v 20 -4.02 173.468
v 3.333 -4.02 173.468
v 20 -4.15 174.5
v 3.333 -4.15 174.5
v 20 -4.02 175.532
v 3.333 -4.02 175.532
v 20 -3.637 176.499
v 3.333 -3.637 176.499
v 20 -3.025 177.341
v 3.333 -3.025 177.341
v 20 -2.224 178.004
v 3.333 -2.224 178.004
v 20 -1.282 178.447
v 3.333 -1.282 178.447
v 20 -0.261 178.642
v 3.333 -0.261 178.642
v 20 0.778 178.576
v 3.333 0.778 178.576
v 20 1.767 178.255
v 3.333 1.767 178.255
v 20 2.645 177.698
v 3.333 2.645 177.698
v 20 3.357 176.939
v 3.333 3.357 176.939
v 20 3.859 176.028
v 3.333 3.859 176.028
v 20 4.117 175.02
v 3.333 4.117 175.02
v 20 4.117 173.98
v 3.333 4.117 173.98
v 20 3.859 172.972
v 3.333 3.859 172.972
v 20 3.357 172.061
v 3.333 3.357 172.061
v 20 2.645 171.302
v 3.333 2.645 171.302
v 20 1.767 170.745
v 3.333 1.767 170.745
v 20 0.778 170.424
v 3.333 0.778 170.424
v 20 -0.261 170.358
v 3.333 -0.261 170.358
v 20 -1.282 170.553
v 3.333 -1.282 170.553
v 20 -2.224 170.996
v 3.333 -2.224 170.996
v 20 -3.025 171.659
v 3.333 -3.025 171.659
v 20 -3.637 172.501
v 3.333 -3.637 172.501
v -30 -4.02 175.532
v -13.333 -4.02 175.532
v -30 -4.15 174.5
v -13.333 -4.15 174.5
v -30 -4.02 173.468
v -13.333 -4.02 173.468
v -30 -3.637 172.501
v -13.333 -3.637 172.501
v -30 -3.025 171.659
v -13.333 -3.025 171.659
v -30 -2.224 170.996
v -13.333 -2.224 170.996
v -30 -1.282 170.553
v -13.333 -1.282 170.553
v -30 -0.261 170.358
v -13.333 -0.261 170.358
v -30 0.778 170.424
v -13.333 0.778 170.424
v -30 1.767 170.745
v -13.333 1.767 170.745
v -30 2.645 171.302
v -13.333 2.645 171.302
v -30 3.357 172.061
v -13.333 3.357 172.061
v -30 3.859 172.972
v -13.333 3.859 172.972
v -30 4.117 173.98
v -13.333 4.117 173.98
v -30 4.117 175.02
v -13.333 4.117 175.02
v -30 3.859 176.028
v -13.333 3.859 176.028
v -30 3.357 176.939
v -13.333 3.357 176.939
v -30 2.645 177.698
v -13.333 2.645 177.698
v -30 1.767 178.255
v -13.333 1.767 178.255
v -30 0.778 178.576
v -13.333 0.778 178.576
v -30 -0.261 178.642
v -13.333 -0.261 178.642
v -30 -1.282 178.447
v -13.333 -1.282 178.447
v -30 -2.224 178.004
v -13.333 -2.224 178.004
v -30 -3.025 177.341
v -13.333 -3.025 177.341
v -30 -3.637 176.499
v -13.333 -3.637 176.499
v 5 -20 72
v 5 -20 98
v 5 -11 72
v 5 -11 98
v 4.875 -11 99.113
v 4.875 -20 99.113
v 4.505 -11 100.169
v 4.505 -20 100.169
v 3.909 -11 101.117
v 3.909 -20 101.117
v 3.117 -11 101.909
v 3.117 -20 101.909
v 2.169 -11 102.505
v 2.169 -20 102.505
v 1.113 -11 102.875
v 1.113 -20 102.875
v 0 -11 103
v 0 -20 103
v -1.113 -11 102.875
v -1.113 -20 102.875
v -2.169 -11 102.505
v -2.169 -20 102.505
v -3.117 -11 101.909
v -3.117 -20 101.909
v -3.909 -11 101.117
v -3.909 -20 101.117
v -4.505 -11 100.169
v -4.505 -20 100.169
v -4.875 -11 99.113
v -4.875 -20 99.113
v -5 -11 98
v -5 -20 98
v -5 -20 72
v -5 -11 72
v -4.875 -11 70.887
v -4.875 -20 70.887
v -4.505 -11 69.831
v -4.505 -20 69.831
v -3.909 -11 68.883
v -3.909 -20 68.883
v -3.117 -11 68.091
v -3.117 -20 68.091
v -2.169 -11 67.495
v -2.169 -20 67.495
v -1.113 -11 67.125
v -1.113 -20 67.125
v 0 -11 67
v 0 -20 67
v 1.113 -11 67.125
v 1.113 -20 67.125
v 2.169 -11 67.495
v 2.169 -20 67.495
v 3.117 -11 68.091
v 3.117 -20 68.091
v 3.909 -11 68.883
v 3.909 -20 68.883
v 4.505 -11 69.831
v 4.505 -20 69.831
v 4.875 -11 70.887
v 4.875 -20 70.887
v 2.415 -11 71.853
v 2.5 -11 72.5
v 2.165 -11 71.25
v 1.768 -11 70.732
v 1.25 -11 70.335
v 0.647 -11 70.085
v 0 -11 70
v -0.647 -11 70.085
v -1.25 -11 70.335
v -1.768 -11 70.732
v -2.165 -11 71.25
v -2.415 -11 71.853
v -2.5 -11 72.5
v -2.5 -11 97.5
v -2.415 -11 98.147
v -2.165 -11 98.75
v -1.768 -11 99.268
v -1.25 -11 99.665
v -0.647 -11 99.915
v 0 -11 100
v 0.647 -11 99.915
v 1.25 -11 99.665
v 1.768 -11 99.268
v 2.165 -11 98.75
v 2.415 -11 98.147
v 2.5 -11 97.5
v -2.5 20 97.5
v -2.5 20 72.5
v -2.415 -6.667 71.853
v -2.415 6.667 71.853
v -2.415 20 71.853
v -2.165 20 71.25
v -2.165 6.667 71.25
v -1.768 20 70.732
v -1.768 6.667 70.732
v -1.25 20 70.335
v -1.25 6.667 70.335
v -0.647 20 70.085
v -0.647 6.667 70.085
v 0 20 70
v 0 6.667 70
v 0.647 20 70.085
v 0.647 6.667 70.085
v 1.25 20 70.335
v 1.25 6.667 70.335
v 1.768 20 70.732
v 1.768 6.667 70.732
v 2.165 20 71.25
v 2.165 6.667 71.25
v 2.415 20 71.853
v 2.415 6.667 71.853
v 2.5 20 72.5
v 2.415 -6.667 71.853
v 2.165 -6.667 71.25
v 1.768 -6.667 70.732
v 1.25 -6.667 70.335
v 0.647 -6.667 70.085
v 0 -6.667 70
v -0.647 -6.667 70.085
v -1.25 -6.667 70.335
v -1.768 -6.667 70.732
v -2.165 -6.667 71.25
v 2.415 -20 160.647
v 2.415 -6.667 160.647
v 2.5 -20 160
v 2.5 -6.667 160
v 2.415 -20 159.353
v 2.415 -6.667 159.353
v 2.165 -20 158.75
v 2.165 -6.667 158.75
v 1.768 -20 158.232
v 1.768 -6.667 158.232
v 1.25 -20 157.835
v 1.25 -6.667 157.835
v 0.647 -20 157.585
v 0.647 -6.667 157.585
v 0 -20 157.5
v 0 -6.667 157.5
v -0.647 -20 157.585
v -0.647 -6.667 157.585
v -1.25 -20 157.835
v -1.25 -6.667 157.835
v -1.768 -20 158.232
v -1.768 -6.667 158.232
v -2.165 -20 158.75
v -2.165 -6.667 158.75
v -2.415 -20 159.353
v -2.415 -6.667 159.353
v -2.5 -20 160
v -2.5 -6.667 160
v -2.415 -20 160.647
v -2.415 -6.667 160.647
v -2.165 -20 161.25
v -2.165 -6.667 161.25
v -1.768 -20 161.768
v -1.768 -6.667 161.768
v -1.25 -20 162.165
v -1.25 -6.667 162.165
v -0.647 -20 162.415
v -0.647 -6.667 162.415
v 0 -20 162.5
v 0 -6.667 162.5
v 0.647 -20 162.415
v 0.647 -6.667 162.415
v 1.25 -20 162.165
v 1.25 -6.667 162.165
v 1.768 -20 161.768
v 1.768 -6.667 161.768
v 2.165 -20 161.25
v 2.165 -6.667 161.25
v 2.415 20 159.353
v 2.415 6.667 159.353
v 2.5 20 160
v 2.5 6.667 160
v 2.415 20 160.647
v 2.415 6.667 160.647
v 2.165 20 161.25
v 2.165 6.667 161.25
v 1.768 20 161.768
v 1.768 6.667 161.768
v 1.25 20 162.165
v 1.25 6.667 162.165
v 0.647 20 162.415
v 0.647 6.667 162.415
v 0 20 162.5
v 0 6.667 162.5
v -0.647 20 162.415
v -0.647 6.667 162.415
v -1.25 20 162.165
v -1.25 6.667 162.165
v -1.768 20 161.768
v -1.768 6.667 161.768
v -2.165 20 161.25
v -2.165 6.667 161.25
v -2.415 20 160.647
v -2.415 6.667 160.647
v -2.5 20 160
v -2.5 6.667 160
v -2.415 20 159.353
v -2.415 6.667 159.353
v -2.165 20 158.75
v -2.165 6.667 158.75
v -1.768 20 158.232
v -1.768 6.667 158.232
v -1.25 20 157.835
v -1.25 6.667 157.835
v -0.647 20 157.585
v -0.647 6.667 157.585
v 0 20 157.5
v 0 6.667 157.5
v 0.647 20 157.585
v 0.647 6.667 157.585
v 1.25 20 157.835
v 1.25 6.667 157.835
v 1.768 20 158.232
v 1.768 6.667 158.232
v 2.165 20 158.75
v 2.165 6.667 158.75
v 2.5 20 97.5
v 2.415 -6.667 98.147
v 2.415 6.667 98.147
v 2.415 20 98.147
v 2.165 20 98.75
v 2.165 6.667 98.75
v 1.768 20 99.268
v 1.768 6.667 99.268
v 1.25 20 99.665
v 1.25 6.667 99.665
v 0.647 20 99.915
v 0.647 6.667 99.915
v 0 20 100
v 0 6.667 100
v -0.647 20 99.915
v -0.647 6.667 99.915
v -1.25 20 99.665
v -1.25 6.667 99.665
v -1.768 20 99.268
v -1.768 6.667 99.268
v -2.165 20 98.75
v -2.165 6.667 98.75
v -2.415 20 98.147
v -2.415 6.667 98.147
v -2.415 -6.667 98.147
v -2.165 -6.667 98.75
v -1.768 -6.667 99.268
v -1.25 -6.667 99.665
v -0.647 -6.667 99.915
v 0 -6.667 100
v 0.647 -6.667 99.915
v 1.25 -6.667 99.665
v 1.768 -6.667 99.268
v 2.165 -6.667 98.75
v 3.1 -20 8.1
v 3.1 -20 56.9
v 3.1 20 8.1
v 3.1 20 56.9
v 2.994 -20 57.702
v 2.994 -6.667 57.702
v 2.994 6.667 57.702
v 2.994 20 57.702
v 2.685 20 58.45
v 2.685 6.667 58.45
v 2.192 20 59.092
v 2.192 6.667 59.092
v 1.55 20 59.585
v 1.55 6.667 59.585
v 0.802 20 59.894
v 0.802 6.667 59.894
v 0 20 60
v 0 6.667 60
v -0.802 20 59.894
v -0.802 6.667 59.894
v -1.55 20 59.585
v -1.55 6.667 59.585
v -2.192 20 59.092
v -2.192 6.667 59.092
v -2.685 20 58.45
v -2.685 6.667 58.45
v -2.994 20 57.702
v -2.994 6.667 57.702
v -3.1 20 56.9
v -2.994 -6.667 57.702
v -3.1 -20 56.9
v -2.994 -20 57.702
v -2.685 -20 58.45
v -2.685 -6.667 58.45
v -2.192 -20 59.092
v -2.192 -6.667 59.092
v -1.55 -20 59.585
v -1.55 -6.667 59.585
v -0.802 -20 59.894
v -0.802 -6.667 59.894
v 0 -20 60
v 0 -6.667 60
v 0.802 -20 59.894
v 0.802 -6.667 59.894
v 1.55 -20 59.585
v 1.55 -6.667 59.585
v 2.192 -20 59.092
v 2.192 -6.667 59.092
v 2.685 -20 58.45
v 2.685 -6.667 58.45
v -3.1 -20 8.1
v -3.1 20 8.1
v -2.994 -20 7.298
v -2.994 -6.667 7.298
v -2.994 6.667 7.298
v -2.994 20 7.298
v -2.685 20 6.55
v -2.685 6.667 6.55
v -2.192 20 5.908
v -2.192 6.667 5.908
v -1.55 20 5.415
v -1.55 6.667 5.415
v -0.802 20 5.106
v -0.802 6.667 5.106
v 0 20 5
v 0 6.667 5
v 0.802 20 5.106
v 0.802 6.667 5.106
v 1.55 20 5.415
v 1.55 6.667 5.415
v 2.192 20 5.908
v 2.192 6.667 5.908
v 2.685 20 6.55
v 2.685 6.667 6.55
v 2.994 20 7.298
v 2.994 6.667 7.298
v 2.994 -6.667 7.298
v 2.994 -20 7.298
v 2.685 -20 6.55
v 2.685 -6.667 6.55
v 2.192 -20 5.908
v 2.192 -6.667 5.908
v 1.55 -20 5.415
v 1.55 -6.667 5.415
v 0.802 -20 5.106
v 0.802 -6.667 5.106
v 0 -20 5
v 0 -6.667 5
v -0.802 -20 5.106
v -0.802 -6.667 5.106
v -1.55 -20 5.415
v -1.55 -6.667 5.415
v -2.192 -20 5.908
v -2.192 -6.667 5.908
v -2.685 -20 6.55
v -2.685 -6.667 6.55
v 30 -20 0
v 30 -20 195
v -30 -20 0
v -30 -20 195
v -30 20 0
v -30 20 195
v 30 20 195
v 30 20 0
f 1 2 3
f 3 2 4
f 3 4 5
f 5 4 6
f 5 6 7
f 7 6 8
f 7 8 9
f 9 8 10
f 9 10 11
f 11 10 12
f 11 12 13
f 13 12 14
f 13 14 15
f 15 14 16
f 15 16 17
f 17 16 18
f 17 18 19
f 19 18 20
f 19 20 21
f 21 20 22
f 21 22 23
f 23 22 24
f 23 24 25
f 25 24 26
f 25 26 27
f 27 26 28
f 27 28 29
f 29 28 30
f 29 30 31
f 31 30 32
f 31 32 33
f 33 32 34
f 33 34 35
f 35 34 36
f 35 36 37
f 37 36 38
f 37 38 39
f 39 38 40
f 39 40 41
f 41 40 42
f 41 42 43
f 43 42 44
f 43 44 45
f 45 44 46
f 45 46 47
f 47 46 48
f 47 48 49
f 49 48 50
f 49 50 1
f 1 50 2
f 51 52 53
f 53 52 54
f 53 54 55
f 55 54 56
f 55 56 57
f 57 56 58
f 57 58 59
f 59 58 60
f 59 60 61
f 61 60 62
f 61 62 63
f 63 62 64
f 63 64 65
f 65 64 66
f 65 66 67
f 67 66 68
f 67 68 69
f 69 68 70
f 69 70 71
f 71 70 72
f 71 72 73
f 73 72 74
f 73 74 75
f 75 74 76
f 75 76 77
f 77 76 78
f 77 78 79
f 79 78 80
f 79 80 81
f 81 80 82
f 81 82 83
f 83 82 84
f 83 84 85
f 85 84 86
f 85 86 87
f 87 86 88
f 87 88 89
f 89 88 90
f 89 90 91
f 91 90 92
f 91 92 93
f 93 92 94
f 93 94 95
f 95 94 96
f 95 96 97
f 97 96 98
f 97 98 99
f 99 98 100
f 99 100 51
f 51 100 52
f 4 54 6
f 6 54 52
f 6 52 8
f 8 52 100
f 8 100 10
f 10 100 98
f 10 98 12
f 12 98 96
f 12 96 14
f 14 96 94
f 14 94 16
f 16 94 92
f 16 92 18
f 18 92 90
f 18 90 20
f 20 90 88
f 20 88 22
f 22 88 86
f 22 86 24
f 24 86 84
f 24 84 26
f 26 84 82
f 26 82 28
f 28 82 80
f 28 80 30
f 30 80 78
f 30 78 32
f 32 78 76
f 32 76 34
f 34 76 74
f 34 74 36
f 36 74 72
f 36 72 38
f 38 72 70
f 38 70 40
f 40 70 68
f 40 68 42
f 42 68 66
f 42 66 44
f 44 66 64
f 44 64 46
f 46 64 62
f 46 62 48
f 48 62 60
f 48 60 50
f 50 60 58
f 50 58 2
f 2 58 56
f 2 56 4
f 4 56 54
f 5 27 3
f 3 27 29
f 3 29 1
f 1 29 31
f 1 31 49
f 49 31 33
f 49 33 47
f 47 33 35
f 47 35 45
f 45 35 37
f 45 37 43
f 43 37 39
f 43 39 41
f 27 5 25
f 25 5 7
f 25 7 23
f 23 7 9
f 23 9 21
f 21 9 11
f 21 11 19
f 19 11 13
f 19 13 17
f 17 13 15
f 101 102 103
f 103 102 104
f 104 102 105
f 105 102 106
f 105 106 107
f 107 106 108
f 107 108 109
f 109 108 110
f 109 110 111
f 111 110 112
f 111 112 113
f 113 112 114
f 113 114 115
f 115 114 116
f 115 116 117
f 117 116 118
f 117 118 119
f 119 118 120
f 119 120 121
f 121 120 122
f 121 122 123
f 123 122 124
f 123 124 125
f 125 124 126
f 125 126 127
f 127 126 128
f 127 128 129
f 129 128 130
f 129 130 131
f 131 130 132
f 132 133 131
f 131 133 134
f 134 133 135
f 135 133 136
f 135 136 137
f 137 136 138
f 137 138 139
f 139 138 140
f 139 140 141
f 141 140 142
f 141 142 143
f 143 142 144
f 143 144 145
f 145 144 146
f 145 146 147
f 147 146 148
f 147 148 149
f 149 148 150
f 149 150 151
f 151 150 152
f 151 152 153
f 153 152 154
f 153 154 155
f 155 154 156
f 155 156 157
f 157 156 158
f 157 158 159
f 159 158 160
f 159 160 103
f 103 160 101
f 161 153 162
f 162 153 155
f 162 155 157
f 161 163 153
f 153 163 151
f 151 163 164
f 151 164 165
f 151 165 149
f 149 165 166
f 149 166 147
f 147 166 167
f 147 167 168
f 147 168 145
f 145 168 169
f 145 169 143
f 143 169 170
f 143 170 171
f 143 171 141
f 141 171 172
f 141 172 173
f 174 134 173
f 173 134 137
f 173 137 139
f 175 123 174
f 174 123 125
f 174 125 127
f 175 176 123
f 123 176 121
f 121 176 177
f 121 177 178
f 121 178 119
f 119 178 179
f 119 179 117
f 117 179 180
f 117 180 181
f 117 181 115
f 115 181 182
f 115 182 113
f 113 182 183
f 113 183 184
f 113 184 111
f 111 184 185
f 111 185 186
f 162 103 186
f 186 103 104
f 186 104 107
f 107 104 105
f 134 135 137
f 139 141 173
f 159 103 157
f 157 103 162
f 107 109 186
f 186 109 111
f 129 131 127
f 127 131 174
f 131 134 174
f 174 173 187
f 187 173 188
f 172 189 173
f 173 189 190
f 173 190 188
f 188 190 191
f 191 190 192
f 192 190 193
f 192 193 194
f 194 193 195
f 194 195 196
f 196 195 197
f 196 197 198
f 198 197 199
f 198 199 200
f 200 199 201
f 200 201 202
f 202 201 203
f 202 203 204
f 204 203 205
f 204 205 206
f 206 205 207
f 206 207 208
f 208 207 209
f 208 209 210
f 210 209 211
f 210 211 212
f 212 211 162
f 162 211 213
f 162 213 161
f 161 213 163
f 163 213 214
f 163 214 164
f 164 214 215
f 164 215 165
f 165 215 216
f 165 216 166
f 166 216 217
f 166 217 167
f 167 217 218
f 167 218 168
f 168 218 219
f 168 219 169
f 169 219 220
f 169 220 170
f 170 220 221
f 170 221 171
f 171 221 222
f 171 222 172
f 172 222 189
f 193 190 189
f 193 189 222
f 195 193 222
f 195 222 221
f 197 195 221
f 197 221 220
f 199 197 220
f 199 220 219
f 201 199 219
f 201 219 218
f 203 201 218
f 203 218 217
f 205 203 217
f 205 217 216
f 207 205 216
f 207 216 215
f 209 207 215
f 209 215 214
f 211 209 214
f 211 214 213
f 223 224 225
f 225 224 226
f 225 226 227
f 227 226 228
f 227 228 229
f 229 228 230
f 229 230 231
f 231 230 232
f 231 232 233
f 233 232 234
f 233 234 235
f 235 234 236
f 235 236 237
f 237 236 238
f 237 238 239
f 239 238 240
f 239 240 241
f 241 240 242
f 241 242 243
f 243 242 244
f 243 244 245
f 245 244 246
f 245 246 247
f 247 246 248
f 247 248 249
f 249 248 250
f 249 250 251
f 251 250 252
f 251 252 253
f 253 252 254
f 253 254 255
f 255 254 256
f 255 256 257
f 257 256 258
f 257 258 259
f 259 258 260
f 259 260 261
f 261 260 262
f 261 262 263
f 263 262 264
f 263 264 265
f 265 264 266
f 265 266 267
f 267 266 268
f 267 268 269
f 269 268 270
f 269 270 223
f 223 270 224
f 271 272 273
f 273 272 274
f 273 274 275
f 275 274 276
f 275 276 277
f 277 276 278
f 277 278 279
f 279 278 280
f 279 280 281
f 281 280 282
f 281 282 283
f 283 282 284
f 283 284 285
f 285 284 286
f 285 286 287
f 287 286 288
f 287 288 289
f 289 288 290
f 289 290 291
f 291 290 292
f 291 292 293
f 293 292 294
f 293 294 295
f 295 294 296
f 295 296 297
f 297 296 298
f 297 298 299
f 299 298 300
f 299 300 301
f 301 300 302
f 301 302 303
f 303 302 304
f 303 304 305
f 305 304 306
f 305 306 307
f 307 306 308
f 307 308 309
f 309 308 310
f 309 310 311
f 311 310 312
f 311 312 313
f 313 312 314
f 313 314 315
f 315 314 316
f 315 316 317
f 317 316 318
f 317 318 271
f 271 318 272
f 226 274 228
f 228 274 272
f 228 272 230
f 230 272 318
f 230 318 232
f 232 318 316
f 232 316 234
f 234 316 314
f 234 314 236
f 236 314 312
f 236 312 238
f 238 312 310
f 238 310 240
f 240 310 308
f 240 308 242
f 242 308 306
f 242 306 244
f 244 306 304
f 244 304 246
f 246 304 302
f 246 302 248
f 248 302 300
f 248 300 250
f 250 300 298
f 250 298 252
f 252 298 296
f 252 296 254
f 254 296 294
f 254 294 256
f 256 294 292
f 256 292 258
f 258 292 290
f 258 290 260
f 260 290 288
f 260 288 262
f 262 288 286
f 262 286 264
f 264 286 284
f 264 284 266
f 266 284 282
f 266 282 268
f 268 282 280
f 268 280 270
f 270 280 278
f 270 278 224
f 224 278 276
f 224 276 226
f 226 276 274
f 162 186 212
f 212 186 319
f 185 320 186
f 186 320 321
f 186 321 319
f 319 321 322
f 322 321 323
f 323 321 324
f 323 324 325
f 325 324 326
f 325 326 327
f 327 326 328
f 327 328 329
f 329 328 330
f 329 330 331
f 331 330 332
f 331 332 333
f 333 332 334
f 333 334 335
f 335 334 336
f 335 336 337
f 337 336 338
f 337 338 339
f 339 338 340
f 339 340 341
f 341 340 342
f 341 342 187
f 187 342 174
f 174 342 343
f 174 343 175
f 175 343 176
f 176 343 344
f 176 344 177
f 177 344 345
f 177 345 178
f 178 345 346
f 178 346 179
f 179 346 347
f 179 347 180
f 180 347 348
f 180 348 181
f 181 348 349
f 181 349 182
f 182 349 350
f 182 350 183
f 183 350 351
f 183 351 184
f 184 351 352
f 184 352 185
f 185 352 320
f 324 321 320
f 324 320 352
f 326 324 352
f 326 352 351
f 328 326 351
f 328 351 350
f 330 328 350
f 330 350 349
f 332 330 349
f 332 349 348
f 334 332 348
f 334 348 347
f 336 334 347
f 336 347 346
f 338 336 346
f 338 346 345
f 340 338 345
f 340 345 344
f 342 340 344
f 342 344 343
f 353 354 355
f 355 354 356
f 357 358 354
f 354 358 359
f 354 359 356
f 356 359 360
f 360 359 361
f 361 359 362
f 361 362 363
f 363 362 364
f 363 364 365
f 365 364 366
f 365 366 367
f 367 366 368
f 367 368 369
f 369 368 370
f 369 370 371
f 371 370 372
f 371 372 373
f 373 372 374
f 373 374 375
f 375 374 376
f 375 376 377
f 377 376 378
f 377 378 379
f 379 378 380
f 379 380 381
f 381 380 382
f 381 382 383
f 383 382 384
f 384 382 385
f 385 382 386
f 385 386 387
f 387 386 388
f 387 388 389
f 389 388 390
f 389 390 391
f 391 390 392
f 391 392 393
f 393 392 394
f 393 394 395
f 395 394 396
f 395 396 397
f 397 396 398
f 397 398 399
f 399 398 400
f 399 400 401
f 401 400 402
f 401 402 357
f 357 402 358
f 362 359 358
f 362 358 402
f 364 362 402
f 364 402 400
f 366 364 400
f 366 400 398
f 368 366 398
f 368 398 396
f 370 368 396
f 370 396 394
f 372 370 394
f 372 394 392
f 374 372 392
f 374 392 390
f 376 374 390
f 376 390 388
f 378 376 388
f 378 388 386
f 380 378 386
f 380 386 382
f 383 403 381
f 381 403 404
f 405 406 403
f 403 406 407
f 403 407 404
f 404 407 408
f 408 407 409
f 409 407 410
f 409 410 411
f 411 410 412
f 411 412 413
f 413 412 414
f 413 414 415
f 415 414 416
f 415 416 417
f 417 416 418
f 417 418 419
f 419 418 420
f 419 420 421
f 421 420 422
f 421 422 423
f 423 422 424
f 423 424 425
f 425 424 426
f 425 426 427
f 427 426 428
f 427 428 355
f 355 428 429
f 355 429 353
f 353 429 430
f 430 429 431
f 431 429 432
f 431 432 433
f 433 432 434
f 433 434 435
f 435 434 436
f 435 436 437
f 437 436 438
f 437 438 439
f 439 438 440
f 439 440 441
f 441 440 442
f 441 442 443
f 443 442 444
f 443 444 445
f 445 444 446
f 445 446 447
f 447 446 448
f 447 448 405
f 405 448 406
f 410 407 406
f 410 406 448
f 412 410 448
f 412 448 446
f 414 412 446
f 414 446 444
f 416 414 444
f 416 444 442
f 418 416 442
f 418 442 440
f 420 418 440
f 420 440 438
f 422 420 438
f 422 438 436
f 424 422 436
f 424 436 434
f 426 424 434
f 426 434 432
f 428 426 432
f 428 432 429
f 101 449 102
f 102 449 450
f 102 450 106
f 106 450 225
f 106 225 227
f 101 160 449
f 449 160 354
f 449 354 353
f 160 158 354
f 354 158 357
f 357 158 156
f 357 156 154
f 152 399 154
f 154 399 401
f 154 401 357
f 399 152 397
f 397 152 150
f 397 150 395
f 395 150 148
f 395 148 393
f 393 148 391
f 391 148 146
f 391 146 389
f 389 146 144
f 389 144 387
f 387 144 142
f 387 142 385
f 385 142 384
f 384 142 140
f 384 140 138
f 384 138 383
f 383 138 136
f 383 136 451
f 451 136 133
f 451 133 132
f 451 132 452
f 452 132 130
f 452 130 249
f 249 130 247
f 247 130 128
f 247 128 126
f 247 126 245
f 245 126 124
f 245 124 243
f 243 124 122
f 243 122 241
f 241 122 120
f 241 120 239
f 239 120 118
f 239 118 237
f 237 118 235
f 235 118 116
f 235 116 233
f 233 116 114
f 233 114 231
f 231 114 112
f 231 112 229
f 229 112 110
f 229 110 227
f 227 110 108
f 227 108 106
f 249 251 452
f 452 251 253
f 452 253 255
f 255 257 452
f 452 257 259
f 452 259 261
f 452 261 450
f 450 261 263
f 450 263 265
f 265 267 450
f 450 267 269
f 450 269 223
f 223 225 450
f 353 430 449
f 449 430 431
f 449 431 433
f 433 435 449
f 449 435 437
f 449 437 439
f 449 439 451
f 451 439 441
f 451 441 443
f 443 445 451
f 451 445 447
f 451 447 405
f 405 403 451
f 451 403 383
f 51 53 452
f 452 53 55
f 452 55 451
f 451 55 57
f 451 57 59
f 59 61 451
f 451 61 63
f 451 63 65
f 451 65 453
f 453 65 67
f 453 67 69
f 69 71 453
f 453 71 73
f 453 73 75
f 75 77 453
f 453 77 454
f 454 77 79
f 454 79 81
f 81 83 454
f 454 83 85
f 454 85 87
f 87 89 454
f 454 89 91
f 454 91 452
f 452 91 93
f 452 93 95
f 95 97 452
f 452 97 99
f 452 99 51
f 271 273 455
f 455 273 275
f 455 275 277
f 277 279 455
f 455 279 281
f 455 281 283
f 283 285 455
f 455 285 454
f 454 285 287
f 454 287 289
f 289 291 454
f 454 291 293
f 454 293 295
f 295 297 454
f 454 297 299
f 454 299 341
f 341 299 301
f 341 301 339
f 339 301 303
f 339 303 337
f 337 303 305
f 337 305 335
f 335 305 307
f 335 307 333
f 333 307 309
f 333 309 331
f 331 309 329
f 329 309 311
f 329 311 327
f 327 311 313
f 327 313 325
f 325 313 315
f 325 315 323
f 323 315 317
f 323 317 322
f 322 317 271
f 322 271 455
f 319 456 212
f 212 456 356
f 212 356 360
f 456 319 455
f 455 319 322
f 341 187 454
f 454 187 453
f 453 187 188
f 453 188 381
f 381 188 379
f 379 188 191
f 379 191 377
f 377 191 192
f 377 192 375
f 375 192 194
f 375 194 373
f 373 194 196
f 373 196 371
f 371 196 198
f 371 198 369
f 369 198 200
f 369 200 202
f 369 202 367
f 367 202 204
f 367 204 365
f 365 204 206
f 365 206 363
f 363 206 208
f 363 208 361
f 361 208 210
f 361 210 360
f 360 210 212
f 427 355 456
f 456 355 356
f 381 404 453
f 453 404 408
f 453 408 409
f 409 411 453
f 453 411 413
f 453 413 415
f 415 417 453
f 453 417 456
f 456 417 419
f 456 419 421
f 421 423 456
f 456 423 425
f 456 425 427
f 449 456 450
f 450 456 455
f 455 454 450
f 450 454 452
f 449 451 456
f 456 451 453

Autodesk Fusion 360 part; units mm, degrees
sketch "Skizze1" plane through (0, 0, 0) normal (0, 0, 1) x (1, 0, 0)
  line L0 (30, 20) -> (-30, 20)
  line L1 (-30, 20) -> (-30, -20)
  line L2 (-30, -20) -> (30, -20)
  line L3 (30, -20) -> (30, 20)
  line L4 (30, 20) -> (-30, -20) construction
  line L5 (-30, 20) -> (30, -20) construction
  dimension "d2" = 60
  dimension "d3" = 40
extrude "Extrusion1" add sketch "Skizze1" along normal blind 195 makes body 1
sketch "Skizze3" plane through (0, -20, 0) normal (0, -1, 0) x (1, 0, 0)
  line L0 (-30, 0) -> (30, 0)
  line L1 (30, 0) -> (30, 195)
  line L2 (30, 195) -> (-30, 195)
  line L3 (-30, 195) -> (-30, 0)
  line L4 (3.1, 8.1) -> (3.1, 56.9)
  arc A0 (3.1, 56.9) -> (-3.1, 56.9) centre (0, 56.9) ccw
  line L5 (-3.1, 56.9) -> (-3.1, 8.1)
  arc A1 (-3.1, 8.1) -> (3.1, 8.1) centre (0, 8.1) ccw
  line L6 (0, 5) -> (0, 60) construction
  line L7 (2.5, 72.5) -> (2.5, 97.5)
  arc A2 (2.5, 97.5) -> (-2.5, 97.5) centre (0, 97.5) ccw
  line L8 (-2.5, 97.5) -> (-2.5, 72.5)
  arc A3 (-2.5, 72.5) -> (2.5, 72.5) centre (0, 72.5) ccw
  line L9 (0, 70) -> (0, 100) construction
  point P0 (0, 195)
  dimension "d20" = 6.2
  dimension "d21" = 5
extrude "Extrusion2" cut sketch "Skizze3" against normal blind 40 contours L4 A0 L5 A1 | L7 A2 L8 A3 bodies 1
sketch "Skizze4" plane through (30, 0, 0) normal (1, 0, 0) x (0, 1, 0)
  line L0 (-20, 0) -> (20, 0)
  line L1 (20, 0) -> (20, 195)
  line L2 (20, 195) -> (-20, 195)
  line L3 (-20, 195) -> (-20, 0)
  circle A0 centre (0, 174.5) radius 4.15
  dimension "d12" = 8.3
extrude "Extrusion3" add sketch "Skizze4" against normal blind 60 separate body contours A0 makes body 2
sketch "Skizze6" plane through (0, 0, 0) normal (0, 1, 0) x (1, 0, 0)
sketch "Skizze7" plane through (0, 20, 0) normal (0, 1, 0) x (-1, 0, 0)
  line L0 (-30, 0) -> (30, 0)
  line L1 (30, 0) -> (30, 195)
  line L2 (30, 195) -> (-30, 195)
  line L3 (-30, 195) -> (-30, 0)
  circle A0 centre (0, 160) radius 2.5
  line L4 (-2.5, 72.5) -> (-2.5, 97.5)
  arc A1 (2.5, 97.5) -> (-2.5, 97.5) centre (0, 97.5) ccw
  line L5 (2.5, 97.5) -> (2.5, 72.5)
  arc A2 (-2.5, 72.5) -> (2.5, 72.5) centre (0, 72.5) ccw
  line L6 (-3.1, 8.1) -> (-3.1, 56.9)
  arc A3 (3.1, 56.9) -> (-3.1, 56.9) centre (0, 56.9) ccw
  line L7 (3.1, 56.9) -> (3.1, 8.1)
  arc A4 (-3.1, 8.1) -> (3.1, 8.1) centre (0, 8.1) ccw
  dimension "d17" = 5
extrude "Extrusion4" cut sketch "Skizze7" against normal blind 40 contours A0 bodies 1
sketch "Skizze8" plane through (0, -20, 0) normal (0, -1, 0) x (1, 0, 0)
  circle A0 centre (0, 160) radius 2.5
  line L0 (2.5, 97.5) -> (2.5, 72.5)
  arc A1 (-2.5, 72.5) -> (2.5, 72.5) centre (0, 72.5) ccw
  line L1 (-2.5, 72.5) -> (-2.5, 97.5)
  arc A2 (2.5, 97.5) -> (-2.5, 97.5) centre (0, 97.5) ccw
  line L2 (3.1, 56.9) -> (3.1, 8.1)
  arc A3 (-3.1, 8.1) -> (3.1, 8.1) centre (0, 8.1) ccw
  line L3 (-3.1, 8.1) -> (-3.1, 56.9)
  arc A4 (3.1, 56.9) -> (-3.1, 56.9) centre (0, 56.9) ccw
  line L4 (-30, 0) -> (30, 0)
  line L5 (30, 0) -> (30, 195)
  line L6 (30, 195) -> (-30, 195)
  line L7 (-30, 195) -> (-30, 0)
  line L8 (5, 72) -> (5, 98)
  arc A5 (5, 98) -> (-5, 98) centre (0, 98) ccw
  line L9 (-5, 98) -> (-5, 72)
  arc A6 (-5, 72) -> (5, 72) centre (0, 72) ccw
  line L10 (0, 72) -> (0, 98) construction
extrude "Extrusion5" cut sketch "Skizze8" against normal blind 9 contours L8 A5 L9 A6 bodies 1
extrude "Extrusion7" cut 1 faces at (-30, -1.0141, 173.1467) along direction (1, 0, 0) blind 50 on bodies 2 bodies 1 2
combine "Kombinieren2" operation add target body 1 tool bodies 2
